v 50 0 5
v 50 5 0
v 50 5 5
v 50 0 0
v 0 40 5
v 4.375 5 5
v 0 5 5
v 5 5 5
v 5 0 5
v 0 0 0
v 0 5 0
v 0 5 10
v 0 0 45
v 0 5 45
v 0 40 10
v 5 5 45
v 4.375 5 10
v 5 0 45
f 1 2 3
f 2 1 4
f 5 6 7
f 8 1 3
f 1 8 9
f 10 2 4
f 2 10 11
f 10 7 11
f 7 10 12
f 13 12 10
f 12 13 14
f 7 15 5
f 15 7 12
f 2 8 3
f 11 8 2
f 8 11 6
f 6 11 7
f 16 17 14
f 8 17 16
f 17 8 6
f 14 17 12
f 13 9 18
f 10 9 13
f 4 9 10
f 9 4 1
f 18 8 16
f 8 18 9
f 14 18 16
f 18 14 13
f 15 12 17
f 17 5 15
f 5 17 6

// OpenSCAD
// Parameters
thickness = 5;  // Thickness of the bracket
long_arm_length = 50;
short_arm_length = 30;
height = 40;

// Module to create the L-bracket
module L_bracket() {
    // Base arm
    cube([long_arm_length, thickness, thickness]);

    // Vertical arm
    translate([0, 0, thickness])
        cube([thickness, thickness, height]);

    // Diagonal support
    translate([0, 0, thickness])
        linear_extrude(height=thickness)
        polygon(points=[[0, 0], [thickness, 0], [0, height]]);
}

// Render the L-bracket
L_bracket();
